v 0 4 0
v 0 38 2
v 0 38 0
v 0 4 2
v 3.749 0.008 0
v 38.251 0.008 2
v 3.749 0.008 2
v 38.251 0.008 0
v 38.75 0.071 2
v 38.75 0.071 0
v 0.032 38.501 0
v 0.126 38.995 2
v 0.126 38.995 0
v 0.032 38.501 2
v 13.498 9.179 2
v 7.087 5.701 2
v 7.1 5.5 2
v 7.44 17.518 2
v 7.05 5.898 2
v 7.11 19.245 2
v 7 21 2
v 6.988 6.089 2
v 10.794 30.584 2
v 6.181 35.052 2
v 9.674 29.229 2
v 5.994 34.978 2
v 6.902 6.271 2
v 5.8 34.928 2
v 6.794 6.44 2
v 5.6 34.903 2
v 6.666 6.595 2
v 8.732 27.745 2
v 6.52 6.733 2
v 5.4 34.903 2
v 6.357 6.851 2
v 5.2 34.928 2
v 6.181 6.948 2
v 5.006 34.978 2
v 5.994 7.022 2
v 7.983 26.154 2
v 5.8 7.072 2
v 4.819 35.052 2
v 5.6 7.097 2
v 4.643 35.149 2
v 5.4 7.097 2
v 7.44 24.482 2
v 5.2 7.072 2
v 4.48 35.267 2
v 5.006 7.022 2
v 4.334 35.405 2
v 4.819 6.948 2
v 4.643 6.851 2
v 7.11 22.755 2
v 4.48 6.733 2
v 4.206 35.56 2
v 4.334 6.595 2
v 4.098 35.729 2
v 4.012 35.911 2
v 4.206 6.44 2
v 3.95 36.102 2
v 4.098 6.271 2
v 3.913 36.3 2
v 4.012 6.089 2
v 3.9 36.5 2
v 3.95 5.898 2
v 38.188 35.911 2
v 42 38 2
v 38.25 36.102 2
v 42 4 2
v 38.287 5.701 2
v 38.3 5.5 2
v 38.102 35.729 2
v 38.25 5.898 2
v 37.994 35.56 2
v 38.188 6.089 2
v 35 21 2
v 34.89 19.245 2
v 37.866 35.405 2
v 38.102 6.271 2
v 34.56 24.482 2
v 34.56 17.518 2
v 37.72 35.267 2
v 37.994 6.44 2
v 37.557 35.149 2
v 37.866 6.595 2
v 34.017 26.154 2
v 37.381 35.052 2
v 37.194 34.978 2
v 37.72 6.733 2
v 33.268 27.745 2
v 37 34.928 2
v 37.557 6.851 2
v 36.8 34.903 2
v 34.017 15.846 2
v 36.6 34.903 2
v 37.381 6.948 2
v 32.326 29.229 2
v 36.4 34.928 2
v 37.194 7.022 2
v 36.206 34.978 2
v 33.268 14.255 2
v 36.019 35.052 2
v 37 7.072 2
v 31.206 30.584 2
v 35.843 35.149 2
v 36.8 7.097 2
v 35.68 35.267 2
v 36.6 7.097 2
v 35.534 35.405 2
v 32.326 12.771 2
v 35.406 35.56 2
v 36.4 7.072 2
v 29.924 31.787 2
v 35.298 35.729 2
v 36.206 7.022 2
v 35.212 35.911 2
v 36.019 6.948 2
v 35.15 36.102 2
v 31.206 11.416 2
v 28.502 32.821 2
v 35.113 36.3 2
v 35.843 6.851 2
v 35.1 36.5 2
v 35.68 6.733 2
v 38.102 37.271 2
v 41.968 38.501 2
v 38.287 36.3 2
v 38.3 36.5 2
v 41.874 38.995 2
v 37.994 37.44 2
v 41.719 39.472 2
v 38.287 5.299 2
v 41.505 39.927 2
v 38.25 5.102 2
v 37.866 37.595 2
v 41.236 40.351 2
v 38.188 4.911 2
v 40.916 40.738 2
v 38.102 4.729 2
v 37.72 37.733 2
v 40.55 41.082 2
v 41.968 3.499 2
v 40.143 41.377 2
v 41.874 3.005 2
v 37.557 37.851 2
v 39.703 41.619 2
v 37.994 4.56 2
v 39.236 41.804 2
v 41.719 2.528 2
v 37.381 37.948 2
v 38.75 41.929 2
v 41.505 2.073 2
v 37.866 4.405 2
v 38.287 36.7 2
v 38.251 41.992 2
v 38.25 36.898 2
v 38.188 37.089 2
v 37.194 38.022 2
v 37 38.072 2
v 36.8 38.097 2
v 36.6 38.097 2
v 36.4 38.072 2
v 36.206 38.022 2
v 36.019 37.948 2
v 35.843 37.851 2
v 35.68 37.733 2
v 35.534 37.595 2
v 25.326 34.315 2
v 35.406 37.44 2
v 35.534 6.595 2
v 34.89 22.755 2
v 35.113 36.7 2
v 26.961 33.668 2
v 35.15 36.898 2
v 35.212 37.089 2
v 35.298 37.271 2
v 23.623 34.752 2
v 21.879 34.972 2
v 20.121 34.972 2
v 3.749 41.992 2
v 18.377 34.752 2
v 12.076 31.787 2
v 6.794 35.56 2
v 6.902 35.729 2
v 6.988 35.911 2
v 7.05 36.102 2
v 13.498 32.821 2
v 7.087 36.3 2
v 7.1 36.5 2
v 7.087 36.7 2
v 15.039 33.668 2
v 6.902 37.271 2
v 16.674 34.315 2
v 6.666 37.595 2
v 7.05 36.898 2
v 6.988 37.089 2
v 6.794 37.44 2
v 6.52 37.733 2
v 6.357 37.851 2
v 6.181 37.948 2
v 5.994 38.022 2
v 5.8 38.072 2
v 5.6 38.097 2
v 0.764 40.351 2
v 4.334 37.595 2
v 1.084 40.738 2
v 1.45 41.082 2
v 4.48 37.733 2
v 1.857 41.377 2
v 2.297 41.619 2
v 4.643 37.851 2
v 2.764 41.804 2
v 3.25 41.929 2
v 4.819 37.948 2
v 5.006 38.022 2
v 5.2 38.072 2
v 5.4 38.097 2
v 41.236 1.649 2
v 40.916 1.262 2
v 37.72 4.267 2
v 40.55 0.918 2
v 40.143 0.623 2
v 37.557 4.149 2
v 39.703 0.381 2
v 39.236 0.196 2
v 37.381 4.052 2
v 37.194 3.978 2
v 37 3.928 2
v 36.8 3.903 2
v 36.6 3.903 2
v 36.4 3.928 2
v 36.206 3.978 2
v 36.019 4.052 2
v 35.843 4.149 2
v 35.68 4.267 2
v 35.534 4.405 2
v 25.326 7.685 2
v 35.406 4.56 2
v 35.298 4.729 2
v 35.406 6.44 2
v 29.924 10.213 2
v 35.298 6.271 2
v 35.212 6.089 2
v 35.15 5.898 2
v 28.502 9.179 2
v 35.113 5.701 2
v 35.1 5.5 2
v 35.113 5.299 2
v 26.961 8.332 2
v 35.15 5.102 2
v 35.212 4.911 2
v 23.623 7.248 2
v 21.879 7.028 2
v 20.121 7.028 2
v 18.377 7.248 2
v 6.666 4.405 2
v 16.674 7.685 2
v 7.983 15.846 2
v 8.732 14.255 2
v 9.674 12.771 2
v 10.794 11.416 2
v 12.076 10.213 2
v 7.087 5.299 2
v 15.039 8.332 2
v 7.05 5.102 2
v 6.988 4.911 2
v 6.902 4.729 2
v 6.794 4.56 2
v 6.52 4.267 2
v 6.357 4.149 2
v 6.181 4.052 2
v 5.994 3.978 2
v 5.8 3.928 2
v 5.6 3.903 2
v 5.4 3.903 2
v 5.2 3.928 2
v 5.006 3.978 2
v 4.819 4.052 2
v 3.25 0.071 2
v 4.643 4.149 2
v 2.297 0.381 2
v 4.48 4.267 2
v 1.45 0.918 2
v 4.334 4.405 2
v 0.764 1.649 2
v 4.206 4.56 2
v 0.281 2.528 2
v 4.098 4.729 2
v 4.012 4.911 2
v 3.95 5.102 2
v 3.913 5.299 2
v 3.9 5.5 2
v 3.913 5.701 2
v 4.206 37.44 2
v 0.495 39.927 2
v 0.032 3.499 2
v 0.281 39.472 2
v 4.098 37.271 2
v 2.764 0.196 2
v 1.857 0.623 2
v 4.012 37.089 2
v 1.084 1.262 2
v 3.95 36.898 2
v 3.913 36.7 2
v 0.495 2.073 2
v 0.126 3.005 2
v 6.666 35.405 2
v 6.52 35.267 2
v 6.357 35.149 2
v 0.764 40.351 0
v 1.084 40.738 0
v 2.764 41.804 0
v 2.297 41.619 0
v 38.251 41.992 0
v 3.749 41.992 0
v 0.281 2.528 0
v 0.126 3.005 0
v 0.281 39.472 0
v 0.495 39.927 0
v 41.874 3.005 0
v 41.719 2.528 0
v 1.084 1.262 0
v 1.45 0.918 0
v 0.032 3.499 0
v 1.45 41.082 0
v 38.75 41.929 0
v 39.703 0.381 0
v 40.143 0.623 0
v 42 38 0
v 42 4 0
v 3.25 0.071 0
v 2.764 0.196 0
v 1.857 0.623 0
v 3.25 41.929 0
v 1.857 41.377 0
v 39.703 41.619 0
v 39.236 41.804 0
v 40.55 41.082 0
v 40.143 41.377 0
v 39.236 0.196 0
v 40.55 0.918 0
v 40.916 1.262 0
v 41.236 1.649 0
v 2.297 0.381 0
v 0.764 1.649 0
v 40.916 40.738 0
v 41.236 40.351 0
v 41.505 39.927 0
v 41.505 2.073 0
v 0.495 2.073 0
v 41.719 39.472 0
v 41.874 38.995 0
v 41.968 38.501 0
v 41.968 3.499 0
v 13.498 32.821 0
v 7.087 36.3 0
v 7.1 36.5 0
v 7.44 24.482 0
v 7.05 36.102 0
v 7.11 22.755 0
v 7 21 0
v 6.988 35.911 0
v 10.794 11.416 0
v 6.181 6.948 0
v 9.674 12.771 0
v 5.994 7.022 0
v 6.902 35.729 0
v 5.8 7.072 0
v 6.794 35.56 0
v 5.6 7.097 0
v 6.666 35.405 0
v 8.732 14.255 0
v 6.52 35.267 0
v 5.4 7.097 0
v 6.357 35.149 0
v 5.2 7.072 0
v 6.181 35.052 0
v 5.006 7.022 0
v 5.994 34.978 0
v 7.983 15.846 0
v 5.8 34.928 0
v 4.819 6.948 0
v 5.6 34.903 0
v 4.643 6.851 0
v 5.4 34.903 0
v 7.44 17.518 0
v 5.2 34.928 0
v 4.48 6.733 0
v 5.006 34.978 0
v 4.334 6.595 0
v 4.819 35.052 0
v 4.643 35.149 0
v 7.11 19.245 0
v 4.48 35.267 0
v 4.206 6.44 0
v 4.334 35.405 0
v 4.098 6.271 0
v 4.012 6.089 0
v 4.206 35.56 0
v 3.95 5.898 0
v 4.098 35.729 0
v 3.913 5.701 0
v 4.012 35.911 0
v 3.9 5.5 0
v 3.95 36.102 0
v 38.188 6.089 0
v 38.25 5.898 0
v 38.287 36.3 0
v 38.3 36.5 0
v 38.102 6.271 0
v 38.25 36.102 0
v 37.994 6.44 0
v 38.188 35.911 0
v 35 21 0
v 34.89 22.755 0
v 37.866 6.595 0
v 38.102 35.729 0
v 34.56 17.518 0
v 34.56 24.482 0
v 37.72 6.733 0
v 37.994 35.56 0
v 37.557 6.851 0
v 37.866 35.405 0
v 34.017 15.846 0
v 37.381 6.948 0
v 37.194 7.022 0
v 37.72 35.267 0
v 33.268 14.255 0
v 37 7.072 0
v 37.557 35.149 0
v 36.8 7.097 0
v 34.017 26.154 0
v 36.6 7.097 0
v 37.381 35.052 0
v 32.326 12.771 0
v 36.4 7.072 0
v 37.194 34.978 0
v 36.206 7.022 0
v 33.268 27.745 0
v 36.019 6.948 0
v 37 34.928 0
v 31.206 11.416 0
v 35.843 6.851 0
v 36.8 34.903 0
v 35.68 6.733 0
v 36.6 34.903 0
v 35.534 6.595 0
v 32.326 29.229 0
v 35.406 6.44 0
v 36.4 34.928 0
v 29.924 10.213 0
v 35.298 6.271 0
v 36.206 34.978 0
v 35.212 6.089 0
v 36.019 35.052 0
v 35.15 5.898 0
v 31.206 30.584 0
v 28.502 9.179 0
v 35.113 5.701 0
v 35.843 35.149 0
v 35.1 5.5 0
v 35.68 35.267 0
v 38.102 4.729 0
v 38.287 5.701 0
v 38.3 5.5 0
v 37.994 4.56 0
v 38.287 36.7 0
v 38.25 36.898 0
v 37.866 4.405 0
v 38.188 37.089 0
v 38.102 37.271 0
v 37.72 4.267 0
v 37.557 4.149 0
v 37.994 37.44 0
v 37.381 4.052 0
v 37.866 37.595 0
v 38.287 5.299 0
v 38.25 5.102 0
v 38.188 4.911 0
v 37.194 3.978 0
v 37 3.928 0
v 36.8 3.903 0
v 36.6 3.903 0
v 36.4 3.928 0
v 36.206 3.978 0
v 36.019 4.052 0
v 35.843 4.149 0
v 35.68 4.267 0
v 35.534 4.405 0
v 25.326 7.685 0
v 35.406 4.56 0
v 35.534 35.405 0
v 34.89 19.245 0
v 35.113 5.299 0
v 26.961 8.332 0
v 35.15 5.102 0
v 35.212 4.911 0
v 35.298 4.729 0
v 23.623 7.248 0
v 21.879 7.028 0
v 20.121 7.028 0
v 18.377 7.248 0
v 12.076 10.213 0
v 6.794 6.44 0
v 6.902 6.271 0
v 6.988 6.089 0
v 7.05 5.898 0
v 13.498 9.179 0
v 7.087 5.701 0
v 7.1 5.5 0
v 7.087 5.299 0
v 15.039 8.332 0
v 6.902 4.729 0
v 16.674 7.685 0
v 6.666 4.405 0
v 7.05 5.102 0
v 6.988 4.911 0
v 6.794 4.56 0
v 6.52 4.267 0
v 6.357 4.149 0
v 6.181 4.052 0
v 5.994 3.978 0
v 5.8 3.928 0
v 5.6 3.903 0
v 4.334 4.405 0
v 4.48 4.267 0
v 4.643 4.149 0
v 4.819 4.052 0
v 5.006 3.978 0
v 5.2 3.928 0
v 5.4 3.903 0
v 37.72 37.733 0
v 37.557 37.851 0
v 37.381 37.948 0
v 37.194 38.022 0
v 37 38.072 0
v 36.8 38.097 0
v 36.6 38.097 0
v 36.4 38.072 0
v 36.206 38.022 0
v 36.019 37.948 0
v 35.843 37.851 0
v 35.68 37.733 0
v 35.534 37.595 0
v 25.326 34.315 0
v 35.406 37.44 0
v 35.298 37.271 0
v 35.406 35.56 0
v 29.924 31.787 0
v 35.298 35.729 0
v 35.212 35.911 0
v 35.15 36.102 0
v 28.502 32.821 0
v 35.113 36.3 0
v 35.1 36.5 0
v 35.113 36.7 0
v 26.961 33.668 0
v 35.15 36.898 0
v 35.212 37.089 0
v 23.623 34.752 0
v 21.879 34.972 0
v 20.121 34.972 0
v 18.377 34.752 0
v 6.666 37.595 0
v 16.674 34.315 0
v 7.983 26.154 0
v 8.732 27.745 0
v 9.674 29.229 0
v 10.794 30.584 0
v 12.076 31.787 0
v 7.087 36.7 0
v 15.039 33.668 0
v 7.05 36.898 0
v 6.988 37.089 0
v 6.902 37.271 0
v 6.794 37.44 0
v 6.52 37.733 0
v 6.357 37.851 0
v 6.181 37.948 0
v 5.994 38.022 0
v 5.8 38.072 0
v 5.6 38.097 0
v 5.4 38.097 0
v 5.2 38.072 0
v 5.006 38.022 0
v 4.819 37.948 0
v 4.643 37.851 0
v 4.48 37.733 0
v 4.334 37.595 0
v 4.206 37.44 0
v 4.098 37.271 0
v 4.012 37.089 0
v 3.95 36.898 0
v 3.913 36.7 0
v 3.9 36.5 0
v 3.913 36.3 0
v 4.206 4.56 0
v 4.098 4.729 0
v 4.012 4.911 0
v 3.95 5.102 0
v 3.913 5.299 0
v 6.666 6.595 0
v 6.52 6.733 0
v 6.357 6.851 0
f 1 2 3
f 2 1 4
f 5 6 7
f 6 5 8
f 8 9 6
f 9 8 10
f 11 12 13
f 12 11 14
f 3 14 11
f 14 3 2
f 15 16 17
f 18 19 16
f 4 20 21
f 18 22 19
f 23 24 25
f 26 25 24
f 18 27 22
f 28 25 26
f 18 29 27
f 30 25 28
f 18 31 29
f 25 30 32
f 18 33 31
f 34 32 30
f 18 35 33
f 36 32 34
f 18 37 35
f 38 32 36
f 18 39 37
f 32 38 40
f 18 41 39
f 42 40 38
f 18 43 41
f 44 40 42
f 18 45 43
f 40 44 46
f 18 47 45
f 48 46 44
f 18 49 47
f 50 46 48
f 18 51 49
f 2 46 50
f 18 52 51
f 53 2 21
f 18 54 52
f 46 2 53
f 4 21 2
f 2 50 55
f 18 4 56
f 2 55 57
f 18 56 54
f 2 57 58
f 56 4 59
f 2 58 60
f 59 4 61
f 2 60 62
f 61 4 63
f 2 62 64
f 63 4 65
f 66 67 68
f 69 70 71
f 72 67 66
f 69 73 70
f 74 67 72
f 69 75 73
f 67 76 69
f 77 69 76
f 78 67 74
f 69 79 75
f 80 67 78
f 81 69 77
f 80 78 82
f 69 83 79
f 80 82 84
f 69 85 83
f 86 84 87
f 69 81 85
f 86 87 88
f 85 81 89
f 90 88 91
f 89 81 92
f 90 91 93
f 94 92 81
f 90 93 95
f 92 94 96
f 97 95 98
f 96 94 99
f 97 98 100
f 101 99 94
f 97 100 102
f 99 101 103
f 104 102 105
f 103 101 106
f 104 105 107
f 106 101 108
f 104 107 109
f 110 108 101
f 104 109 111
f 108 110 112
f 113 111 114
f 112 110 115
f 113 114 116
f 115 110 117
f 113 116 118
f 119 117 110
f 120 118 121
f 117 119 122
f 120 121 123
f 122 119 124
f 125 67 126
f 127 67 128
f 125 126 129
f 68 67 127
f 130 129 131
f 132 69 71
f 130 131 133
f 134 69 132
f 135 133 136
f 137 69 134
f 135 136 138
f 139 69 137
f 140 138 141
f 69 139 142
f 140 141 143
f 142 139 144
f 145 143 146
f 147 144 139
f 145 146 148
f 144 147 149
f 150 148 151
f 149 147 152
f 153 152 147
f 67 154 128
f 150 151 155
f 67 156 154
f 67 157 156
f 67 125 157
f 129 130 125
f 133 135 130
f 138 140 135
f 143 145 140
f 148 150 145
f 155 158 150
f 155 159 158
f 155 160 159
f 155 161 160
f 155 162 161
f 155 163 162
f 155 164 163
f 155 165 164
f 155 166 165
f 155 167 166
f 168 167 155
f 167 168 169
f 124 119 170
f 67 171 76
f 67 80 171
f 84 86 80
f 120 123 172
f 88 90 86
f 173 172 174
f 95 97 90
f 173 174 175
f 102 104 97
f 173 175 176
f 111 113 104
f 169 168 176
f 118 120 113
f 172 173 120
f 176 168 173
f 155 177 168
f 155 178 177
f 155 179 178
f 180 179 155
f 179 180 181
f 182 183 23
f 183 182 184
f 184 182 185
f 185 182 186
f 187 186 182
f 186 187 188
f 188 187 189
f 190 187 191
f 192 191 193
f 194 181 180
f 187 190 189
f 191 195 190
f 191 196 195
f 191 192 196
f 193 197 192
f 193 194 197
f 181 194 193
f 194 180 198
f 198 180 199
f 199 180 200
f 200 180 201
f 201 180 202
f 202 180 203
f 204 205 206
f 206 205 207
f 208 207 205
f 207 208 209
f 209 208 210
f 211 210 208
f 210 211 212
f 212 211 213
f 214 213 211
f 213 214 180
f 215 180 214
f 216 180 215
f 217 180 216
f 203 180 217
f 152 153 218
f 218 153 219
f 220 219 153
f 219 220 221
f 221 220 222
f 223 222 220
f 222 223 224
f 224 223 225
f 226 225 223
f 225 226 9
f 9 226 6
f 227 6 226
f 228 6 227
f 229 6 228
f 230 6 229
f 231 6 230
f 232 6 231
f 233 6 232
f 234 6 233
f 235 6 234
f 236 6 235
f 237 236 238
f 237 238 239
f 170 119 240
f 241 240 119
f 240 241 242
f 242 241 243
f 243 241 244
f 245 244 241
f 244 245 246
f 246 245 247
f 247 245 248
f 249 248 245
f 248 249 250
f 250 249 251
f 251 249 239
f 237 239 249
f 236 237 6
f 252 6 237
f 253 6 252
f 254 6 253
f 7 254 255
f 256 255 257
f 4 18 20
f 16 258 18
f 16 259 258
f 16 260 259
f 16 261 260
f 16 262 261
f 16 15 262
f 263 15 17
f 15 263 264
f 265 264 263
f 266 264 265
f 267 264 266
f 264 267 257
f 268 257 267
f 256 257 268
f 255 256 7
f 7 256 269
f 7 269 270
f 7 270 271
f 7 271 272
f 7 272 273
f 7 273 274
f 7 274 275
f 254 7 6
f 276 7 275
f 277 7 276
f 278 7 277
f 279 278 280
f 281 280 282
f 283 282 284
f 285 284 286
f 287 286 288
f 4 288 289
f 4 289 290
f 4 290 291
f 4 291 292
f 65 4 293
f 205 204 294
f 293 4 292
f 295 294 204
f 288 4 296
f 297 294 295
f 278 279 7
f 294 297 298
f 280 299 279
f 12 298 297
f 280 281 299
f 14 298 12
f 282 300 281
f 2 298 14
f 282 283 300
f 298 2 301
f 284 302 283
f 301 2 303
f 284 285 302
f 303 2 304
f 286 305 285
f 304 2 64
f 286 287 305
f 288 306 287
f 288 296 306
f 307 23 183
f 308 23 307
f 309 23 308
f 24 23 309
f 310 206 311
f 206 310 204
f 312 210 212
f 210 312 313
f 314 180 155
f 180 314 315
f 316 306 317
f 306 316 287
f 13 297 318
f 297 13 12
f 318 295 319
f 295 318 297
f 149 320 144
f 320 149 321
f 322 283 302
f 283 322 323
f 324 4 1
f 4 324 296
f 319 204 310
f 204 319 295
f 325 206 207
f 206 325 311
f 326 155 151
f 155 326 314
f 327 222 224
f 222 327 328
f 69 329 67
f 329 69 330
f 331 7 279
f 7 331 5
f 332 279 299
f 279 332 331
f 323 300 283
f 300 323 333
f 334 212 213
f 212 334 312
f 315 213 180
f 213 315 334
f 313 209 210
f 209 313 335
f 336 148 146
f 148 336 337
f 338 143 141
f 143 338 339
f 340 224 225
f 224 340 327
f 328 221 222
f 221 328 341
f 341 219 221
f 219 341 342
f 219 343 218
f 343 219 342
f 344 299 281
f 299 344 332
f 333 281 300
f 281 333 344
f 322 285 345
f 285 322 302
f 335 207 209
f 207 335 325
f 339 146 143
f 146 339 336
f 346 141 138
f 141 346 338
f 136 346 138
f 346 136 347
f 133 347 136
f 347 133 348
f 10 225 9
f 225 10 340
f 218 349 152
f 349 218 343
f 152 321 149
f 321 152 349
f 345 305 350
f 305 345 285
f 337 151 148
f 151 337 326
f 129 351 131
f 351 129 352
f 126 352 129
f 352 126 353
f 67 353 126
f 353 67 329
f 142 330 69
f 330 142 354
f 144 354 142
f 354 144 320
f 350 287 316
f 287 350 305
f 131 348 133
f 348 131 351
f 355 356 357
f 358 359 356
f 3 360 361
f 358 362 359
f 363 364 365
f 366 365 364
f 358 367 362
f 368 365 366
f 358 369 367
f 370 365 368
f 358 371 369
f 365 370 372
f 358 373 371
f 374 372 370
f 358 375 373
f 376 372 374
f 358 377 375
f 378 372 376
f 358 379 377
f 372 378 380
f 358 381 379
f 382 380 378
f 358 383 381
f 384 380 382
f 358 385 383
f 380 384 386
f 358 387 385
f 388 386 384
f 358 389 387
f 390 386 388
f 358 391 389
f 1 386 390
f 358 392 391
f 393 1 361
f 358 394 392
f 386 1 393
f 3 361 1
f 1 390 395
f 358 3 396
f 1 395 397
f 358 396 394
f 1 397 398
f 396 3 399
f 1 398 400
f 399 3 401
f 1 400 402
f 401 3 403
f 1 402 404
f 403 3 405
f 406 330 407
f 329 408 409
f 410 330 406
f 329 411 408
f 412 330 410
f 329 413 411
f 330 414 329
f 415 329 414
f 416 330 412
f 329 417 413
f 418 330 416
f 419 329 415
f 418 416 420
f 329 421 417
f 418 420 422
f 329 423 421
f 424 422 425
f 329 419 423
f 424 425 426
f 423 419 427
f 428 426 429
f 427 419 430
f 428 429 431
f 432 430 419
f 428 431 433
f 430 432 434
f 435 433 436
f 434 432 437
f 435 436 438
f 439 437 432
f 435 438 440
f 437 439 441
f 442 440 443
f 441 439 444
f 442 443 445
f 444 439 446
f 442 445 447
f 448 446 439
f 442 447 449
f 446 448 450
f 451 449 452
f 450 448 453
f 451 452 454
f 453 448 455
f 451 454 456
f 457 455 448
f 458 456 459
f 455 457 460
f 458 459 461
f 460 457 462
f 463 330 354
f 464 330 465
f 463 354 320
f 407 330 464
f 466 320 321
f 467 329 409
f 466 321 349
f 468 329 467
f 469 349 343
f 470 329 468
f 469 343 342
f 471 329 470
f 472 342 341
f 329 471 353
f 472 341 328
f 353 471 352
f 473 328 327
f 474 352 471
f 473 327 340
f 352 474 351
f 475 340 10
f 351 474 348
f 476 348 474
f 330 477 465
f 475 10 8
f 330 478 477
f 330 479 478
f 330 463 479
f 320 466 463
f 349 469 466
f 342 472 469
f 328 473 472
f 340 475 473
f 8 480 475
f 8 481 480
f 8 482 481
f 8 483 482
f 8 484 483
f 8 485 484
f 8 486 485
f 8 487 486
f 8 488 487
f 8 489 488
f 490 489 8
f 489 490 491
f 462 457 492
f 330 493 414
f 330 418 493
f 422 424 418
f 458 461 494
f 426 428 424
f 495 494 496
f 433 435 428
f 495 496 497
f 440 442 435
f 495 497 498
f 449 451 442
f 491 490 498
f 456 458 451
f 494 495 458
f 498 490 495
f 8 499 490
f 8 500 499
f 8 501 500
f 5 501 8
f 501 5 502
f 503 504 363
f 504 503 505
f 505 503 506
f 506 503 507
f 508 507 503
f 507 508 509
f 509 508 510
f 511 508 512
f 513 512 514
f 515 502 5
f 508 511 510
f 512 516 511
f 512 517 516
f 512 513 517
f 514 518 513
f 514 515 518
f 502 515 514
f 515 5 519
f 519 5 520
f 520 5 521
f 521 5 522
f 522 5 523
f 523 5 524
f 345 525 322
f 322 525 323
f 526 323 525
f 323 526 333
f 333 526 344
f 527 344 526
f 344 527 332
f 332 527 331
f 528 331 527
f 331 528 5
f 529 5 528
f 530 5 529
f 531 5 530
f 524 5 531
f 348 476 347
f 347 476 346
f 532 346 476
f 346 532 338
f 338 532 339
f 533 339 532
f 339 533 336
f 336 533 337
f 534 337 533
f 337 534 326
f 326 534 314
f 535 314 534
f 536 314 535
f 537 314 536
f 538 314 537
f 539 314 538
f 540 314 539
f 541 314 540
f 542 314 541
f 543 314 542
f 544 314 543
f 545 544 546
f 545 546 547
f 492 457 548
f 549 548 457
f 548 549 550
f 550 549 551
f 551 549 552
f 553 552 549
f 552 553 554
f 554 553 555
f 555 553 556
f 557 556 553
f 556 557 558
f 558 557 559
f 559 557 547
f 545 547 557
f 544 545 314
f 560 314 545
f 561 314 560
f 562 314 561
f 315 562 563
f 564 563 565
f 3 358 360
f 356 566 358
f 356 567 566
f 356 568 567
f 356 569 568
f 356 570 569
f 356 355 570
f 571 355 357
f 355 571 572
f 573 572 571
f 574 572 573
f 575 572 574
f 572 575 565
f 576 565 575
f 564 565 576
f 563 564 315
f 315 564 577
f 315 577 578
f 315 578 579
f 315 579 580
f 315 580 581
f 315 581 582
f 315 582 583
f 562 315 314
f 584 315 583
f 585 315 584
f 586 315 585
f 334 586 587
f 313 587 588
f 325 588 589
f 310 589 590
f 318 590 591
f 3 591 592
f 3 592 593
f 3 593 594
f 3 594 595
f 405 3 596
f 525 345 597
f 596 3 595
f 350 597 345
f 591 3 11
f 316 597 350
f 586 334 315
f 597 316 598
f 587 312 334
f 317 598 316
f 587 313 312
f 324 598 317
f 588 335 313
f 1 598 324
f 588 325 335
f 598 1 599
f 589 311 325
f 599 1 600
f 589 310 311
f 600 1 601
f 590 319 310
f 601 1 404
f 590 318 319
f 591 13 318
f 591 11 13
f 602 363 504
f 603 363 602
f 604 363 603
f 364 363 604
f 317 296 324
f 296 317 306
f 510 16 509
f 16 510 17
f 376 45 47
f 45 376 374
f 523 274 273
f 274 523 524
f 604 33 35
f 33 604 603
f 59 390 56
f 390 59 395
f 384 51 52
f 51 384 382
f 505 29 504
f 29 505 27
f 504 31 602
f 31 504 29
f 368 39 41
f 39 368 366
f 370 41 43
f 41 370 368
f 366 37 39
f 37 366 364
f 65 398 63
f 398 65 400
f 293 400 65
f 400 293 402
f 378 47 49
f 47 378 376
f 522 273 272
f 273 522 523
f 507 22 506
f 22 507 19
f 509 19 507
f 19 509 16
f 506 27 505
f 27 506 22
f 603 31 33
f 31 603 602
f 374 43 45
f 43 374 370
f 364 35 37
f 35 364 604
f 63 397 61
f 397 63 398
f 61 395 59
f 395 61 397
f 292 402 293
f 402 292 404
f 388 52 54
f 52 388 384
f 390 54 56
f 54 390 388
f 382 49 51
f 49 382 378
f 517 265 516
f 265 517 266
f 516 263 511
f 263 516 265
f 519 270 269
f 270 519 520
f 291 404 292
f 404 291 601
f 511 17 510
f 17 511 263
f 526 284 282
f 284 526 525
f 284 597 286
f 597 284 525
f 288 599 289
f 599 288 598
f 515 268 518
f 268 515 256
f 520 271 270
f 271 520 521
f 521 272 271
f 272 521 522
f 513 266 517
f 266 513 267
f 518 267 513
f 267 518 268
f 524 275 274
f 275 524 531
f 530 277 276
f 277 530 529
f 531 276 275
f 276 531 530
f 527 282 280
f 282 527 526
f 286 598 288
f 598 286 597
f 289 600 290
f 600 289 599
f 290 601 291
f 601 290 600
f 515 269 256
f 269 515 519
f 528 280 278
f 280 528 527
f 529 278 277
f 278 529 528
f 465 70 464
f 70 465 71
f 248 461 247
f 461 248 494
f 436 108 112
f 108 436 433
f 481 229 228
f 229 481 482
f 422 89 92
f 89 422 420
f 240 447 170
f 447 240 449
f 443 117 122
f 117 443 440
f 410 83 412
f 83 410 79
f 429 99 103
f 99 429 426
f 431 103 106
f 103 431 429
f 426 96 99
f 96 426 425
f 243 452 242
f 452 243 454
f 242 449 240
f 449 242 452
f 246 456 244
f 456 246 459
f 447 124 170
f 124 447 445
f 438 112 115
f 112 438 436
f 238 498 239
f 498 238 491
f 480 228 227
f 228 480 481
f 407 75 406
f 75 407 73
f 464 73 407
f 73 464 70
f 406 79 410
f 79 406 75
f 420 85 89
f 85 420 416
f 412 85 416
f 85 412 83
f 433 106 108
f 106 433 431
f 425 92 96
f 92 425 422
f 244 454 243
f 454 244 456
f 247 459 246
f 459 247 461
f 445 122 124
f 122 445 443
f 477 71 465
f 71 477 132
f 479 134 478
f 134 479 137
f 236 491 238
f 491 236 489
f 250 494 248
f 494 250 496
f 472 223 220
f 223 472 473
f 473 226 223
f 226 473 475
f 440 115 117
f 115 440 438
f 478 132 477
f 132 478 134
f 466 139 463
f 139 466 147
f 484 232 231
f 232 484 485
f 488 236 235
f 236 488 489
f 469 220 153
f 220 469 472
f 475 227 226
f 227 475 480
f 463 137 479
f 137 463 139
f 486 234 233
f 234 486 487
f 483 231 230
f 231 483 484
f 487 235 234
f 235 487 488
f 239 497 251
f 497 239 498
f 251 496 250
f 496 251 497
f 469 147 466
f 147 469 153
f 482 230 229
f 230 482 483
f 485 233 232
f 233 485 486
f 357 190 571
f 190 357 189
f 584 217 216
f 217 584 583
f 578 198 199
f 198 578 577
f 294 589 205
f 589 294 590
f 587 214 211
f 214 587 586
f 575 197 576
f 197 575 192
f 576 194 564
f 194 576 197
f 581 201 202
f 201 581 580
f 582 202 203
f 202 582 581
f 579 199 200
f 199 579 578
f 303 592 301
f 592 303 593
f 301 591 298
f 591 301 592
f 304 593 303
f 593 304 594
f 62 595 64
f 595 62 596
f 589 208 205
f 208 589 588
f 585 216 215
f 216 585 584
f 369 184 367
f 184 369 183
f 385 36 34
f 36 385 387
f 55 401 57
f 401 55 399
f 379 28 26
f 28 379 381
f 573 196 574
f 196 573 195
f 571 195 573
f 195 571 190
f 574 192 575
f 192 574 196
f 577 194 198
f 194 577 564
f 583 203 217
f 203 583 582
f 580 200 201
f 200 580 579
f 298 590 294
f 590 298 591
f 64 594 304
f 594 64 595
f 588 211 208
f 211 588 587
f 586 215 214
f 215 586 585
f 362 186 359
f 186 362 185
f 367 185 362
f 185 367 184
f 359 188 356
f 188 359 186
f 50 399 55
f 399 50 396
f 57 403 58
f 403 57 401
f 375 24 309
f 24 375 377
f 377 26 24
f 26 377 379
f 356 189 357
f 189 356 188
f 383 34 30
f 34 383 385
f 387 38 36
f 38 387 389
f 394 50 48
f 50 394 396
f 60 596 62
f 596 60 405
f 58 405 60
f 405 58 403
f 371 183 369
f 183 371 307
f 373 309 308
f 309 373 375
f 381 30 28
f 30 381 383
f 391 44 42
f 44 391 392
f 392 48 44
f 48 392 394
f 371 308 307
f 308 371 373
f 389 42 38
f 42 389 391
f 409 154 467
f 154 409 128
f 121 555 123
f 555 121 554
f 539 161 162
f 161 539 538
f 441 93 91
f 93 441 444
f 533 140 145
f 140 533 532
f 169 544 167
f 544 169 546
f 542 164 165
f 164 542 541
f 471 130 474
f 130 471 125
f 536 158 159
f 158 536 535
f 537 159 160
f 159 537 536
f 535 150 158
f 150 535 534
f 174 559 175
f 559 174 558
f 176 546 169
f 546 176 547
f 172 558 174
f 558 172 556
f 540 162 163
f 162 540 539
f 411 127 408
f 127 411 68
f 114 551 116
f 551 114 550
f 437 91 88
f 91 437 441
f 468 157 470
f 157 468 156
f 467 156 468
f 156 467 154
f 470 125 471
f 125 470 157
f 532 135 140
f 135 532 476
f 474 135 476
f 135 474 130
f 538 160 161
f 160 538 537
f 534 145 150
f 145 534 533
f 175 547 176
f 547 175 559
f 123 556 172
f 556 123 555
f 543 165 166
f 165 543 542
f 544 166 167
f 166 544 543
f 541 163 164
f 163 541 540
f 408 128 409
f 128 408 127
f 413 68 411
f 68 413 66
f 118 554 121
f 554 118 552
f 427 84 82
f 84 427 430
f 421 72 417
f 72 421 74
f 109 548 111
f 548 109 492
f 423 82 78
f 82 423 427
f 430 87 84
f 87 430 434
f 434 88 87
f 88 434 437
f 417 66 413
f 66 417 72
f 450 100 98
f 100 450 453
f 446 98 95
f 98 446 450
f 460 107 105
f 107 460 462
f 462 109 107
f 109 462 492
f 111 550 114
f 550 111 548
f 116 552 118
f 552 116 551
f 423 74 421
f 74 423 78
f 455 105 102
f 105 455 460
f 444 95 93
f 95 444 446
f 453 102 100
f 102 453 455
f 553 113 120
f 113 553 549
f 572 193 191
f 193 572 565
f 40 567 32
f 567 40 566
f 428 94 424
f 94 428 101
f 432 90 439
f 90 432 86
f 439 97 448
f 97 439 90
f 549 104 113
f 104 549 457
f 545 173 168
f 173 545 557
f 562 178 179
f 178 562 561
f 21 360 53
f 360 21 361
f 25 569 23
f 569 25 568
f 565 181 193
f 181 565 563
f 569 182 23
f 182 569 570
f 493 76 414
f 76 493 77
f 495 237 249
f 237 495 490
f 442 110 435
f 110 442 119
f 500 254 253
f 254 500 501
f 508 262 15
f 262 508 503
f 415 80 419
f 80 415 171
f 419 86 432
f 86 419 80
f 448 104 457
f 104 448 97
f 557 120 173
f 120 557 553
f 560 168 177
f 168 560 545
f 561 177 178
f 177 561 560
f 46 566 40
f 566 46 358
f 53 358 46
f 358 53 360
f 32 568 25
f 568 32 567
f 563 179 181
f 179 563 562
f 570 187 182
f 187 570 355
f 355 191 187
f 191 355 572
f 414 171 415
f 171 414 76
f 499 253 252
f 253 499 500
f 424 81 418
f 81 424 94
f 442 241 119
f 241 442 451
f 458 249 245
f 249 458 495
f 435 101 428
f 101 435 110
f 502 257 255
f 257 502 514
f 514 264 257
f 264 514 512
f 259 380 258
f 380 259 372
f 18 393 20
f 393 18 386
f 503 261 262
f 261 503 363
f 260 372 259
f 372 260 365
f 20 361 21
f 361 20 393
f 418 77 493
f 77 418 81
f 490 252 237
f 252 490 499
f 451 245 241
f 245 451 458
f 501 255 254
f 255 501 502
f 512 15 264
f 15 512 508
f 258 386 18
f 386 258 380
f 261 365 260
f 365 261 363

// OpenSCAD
l = 42;
w = 42;
h = 2;

difference() {

    // base
    hull() {
       translate([4,4,0]) cylinder($fn=50, r=4,h=h);
       translate([4,w-4,0]) cylinder($fn=50, r=4,h=h);
        translate([l-4,4,0]) cylinder($fn=50, r=4,h=h);
       translate([l-4,w-4,0]) cylinder($fn=50, r=4,h=h);
    }

        translate([3.9+1.6,3.9+1.6,-1]) cylinder($fn=50, r=1.6,h=h+2);
        translate([3.9+1.6+ 28 +3.2, 3.9+1.6,-1]) cylinder($fn=50, r=1.6,h=h+2);
        
        translate([3.9 + 1.6, w-3.9-1.6, -1]) cylinder($fn=50, r=1.6,h=h+2);
        translate([3.9+1.6+ 28 +3.2, w-3.9-1.6, -1]) cylinder($fn=50, r=1.6,h=h+2);

    
    translate([l-w+w/2, w/2, -1])cylinder($fn=50, r=14,h=h+2);  
}
//color("red") cube([l,w,2]);
